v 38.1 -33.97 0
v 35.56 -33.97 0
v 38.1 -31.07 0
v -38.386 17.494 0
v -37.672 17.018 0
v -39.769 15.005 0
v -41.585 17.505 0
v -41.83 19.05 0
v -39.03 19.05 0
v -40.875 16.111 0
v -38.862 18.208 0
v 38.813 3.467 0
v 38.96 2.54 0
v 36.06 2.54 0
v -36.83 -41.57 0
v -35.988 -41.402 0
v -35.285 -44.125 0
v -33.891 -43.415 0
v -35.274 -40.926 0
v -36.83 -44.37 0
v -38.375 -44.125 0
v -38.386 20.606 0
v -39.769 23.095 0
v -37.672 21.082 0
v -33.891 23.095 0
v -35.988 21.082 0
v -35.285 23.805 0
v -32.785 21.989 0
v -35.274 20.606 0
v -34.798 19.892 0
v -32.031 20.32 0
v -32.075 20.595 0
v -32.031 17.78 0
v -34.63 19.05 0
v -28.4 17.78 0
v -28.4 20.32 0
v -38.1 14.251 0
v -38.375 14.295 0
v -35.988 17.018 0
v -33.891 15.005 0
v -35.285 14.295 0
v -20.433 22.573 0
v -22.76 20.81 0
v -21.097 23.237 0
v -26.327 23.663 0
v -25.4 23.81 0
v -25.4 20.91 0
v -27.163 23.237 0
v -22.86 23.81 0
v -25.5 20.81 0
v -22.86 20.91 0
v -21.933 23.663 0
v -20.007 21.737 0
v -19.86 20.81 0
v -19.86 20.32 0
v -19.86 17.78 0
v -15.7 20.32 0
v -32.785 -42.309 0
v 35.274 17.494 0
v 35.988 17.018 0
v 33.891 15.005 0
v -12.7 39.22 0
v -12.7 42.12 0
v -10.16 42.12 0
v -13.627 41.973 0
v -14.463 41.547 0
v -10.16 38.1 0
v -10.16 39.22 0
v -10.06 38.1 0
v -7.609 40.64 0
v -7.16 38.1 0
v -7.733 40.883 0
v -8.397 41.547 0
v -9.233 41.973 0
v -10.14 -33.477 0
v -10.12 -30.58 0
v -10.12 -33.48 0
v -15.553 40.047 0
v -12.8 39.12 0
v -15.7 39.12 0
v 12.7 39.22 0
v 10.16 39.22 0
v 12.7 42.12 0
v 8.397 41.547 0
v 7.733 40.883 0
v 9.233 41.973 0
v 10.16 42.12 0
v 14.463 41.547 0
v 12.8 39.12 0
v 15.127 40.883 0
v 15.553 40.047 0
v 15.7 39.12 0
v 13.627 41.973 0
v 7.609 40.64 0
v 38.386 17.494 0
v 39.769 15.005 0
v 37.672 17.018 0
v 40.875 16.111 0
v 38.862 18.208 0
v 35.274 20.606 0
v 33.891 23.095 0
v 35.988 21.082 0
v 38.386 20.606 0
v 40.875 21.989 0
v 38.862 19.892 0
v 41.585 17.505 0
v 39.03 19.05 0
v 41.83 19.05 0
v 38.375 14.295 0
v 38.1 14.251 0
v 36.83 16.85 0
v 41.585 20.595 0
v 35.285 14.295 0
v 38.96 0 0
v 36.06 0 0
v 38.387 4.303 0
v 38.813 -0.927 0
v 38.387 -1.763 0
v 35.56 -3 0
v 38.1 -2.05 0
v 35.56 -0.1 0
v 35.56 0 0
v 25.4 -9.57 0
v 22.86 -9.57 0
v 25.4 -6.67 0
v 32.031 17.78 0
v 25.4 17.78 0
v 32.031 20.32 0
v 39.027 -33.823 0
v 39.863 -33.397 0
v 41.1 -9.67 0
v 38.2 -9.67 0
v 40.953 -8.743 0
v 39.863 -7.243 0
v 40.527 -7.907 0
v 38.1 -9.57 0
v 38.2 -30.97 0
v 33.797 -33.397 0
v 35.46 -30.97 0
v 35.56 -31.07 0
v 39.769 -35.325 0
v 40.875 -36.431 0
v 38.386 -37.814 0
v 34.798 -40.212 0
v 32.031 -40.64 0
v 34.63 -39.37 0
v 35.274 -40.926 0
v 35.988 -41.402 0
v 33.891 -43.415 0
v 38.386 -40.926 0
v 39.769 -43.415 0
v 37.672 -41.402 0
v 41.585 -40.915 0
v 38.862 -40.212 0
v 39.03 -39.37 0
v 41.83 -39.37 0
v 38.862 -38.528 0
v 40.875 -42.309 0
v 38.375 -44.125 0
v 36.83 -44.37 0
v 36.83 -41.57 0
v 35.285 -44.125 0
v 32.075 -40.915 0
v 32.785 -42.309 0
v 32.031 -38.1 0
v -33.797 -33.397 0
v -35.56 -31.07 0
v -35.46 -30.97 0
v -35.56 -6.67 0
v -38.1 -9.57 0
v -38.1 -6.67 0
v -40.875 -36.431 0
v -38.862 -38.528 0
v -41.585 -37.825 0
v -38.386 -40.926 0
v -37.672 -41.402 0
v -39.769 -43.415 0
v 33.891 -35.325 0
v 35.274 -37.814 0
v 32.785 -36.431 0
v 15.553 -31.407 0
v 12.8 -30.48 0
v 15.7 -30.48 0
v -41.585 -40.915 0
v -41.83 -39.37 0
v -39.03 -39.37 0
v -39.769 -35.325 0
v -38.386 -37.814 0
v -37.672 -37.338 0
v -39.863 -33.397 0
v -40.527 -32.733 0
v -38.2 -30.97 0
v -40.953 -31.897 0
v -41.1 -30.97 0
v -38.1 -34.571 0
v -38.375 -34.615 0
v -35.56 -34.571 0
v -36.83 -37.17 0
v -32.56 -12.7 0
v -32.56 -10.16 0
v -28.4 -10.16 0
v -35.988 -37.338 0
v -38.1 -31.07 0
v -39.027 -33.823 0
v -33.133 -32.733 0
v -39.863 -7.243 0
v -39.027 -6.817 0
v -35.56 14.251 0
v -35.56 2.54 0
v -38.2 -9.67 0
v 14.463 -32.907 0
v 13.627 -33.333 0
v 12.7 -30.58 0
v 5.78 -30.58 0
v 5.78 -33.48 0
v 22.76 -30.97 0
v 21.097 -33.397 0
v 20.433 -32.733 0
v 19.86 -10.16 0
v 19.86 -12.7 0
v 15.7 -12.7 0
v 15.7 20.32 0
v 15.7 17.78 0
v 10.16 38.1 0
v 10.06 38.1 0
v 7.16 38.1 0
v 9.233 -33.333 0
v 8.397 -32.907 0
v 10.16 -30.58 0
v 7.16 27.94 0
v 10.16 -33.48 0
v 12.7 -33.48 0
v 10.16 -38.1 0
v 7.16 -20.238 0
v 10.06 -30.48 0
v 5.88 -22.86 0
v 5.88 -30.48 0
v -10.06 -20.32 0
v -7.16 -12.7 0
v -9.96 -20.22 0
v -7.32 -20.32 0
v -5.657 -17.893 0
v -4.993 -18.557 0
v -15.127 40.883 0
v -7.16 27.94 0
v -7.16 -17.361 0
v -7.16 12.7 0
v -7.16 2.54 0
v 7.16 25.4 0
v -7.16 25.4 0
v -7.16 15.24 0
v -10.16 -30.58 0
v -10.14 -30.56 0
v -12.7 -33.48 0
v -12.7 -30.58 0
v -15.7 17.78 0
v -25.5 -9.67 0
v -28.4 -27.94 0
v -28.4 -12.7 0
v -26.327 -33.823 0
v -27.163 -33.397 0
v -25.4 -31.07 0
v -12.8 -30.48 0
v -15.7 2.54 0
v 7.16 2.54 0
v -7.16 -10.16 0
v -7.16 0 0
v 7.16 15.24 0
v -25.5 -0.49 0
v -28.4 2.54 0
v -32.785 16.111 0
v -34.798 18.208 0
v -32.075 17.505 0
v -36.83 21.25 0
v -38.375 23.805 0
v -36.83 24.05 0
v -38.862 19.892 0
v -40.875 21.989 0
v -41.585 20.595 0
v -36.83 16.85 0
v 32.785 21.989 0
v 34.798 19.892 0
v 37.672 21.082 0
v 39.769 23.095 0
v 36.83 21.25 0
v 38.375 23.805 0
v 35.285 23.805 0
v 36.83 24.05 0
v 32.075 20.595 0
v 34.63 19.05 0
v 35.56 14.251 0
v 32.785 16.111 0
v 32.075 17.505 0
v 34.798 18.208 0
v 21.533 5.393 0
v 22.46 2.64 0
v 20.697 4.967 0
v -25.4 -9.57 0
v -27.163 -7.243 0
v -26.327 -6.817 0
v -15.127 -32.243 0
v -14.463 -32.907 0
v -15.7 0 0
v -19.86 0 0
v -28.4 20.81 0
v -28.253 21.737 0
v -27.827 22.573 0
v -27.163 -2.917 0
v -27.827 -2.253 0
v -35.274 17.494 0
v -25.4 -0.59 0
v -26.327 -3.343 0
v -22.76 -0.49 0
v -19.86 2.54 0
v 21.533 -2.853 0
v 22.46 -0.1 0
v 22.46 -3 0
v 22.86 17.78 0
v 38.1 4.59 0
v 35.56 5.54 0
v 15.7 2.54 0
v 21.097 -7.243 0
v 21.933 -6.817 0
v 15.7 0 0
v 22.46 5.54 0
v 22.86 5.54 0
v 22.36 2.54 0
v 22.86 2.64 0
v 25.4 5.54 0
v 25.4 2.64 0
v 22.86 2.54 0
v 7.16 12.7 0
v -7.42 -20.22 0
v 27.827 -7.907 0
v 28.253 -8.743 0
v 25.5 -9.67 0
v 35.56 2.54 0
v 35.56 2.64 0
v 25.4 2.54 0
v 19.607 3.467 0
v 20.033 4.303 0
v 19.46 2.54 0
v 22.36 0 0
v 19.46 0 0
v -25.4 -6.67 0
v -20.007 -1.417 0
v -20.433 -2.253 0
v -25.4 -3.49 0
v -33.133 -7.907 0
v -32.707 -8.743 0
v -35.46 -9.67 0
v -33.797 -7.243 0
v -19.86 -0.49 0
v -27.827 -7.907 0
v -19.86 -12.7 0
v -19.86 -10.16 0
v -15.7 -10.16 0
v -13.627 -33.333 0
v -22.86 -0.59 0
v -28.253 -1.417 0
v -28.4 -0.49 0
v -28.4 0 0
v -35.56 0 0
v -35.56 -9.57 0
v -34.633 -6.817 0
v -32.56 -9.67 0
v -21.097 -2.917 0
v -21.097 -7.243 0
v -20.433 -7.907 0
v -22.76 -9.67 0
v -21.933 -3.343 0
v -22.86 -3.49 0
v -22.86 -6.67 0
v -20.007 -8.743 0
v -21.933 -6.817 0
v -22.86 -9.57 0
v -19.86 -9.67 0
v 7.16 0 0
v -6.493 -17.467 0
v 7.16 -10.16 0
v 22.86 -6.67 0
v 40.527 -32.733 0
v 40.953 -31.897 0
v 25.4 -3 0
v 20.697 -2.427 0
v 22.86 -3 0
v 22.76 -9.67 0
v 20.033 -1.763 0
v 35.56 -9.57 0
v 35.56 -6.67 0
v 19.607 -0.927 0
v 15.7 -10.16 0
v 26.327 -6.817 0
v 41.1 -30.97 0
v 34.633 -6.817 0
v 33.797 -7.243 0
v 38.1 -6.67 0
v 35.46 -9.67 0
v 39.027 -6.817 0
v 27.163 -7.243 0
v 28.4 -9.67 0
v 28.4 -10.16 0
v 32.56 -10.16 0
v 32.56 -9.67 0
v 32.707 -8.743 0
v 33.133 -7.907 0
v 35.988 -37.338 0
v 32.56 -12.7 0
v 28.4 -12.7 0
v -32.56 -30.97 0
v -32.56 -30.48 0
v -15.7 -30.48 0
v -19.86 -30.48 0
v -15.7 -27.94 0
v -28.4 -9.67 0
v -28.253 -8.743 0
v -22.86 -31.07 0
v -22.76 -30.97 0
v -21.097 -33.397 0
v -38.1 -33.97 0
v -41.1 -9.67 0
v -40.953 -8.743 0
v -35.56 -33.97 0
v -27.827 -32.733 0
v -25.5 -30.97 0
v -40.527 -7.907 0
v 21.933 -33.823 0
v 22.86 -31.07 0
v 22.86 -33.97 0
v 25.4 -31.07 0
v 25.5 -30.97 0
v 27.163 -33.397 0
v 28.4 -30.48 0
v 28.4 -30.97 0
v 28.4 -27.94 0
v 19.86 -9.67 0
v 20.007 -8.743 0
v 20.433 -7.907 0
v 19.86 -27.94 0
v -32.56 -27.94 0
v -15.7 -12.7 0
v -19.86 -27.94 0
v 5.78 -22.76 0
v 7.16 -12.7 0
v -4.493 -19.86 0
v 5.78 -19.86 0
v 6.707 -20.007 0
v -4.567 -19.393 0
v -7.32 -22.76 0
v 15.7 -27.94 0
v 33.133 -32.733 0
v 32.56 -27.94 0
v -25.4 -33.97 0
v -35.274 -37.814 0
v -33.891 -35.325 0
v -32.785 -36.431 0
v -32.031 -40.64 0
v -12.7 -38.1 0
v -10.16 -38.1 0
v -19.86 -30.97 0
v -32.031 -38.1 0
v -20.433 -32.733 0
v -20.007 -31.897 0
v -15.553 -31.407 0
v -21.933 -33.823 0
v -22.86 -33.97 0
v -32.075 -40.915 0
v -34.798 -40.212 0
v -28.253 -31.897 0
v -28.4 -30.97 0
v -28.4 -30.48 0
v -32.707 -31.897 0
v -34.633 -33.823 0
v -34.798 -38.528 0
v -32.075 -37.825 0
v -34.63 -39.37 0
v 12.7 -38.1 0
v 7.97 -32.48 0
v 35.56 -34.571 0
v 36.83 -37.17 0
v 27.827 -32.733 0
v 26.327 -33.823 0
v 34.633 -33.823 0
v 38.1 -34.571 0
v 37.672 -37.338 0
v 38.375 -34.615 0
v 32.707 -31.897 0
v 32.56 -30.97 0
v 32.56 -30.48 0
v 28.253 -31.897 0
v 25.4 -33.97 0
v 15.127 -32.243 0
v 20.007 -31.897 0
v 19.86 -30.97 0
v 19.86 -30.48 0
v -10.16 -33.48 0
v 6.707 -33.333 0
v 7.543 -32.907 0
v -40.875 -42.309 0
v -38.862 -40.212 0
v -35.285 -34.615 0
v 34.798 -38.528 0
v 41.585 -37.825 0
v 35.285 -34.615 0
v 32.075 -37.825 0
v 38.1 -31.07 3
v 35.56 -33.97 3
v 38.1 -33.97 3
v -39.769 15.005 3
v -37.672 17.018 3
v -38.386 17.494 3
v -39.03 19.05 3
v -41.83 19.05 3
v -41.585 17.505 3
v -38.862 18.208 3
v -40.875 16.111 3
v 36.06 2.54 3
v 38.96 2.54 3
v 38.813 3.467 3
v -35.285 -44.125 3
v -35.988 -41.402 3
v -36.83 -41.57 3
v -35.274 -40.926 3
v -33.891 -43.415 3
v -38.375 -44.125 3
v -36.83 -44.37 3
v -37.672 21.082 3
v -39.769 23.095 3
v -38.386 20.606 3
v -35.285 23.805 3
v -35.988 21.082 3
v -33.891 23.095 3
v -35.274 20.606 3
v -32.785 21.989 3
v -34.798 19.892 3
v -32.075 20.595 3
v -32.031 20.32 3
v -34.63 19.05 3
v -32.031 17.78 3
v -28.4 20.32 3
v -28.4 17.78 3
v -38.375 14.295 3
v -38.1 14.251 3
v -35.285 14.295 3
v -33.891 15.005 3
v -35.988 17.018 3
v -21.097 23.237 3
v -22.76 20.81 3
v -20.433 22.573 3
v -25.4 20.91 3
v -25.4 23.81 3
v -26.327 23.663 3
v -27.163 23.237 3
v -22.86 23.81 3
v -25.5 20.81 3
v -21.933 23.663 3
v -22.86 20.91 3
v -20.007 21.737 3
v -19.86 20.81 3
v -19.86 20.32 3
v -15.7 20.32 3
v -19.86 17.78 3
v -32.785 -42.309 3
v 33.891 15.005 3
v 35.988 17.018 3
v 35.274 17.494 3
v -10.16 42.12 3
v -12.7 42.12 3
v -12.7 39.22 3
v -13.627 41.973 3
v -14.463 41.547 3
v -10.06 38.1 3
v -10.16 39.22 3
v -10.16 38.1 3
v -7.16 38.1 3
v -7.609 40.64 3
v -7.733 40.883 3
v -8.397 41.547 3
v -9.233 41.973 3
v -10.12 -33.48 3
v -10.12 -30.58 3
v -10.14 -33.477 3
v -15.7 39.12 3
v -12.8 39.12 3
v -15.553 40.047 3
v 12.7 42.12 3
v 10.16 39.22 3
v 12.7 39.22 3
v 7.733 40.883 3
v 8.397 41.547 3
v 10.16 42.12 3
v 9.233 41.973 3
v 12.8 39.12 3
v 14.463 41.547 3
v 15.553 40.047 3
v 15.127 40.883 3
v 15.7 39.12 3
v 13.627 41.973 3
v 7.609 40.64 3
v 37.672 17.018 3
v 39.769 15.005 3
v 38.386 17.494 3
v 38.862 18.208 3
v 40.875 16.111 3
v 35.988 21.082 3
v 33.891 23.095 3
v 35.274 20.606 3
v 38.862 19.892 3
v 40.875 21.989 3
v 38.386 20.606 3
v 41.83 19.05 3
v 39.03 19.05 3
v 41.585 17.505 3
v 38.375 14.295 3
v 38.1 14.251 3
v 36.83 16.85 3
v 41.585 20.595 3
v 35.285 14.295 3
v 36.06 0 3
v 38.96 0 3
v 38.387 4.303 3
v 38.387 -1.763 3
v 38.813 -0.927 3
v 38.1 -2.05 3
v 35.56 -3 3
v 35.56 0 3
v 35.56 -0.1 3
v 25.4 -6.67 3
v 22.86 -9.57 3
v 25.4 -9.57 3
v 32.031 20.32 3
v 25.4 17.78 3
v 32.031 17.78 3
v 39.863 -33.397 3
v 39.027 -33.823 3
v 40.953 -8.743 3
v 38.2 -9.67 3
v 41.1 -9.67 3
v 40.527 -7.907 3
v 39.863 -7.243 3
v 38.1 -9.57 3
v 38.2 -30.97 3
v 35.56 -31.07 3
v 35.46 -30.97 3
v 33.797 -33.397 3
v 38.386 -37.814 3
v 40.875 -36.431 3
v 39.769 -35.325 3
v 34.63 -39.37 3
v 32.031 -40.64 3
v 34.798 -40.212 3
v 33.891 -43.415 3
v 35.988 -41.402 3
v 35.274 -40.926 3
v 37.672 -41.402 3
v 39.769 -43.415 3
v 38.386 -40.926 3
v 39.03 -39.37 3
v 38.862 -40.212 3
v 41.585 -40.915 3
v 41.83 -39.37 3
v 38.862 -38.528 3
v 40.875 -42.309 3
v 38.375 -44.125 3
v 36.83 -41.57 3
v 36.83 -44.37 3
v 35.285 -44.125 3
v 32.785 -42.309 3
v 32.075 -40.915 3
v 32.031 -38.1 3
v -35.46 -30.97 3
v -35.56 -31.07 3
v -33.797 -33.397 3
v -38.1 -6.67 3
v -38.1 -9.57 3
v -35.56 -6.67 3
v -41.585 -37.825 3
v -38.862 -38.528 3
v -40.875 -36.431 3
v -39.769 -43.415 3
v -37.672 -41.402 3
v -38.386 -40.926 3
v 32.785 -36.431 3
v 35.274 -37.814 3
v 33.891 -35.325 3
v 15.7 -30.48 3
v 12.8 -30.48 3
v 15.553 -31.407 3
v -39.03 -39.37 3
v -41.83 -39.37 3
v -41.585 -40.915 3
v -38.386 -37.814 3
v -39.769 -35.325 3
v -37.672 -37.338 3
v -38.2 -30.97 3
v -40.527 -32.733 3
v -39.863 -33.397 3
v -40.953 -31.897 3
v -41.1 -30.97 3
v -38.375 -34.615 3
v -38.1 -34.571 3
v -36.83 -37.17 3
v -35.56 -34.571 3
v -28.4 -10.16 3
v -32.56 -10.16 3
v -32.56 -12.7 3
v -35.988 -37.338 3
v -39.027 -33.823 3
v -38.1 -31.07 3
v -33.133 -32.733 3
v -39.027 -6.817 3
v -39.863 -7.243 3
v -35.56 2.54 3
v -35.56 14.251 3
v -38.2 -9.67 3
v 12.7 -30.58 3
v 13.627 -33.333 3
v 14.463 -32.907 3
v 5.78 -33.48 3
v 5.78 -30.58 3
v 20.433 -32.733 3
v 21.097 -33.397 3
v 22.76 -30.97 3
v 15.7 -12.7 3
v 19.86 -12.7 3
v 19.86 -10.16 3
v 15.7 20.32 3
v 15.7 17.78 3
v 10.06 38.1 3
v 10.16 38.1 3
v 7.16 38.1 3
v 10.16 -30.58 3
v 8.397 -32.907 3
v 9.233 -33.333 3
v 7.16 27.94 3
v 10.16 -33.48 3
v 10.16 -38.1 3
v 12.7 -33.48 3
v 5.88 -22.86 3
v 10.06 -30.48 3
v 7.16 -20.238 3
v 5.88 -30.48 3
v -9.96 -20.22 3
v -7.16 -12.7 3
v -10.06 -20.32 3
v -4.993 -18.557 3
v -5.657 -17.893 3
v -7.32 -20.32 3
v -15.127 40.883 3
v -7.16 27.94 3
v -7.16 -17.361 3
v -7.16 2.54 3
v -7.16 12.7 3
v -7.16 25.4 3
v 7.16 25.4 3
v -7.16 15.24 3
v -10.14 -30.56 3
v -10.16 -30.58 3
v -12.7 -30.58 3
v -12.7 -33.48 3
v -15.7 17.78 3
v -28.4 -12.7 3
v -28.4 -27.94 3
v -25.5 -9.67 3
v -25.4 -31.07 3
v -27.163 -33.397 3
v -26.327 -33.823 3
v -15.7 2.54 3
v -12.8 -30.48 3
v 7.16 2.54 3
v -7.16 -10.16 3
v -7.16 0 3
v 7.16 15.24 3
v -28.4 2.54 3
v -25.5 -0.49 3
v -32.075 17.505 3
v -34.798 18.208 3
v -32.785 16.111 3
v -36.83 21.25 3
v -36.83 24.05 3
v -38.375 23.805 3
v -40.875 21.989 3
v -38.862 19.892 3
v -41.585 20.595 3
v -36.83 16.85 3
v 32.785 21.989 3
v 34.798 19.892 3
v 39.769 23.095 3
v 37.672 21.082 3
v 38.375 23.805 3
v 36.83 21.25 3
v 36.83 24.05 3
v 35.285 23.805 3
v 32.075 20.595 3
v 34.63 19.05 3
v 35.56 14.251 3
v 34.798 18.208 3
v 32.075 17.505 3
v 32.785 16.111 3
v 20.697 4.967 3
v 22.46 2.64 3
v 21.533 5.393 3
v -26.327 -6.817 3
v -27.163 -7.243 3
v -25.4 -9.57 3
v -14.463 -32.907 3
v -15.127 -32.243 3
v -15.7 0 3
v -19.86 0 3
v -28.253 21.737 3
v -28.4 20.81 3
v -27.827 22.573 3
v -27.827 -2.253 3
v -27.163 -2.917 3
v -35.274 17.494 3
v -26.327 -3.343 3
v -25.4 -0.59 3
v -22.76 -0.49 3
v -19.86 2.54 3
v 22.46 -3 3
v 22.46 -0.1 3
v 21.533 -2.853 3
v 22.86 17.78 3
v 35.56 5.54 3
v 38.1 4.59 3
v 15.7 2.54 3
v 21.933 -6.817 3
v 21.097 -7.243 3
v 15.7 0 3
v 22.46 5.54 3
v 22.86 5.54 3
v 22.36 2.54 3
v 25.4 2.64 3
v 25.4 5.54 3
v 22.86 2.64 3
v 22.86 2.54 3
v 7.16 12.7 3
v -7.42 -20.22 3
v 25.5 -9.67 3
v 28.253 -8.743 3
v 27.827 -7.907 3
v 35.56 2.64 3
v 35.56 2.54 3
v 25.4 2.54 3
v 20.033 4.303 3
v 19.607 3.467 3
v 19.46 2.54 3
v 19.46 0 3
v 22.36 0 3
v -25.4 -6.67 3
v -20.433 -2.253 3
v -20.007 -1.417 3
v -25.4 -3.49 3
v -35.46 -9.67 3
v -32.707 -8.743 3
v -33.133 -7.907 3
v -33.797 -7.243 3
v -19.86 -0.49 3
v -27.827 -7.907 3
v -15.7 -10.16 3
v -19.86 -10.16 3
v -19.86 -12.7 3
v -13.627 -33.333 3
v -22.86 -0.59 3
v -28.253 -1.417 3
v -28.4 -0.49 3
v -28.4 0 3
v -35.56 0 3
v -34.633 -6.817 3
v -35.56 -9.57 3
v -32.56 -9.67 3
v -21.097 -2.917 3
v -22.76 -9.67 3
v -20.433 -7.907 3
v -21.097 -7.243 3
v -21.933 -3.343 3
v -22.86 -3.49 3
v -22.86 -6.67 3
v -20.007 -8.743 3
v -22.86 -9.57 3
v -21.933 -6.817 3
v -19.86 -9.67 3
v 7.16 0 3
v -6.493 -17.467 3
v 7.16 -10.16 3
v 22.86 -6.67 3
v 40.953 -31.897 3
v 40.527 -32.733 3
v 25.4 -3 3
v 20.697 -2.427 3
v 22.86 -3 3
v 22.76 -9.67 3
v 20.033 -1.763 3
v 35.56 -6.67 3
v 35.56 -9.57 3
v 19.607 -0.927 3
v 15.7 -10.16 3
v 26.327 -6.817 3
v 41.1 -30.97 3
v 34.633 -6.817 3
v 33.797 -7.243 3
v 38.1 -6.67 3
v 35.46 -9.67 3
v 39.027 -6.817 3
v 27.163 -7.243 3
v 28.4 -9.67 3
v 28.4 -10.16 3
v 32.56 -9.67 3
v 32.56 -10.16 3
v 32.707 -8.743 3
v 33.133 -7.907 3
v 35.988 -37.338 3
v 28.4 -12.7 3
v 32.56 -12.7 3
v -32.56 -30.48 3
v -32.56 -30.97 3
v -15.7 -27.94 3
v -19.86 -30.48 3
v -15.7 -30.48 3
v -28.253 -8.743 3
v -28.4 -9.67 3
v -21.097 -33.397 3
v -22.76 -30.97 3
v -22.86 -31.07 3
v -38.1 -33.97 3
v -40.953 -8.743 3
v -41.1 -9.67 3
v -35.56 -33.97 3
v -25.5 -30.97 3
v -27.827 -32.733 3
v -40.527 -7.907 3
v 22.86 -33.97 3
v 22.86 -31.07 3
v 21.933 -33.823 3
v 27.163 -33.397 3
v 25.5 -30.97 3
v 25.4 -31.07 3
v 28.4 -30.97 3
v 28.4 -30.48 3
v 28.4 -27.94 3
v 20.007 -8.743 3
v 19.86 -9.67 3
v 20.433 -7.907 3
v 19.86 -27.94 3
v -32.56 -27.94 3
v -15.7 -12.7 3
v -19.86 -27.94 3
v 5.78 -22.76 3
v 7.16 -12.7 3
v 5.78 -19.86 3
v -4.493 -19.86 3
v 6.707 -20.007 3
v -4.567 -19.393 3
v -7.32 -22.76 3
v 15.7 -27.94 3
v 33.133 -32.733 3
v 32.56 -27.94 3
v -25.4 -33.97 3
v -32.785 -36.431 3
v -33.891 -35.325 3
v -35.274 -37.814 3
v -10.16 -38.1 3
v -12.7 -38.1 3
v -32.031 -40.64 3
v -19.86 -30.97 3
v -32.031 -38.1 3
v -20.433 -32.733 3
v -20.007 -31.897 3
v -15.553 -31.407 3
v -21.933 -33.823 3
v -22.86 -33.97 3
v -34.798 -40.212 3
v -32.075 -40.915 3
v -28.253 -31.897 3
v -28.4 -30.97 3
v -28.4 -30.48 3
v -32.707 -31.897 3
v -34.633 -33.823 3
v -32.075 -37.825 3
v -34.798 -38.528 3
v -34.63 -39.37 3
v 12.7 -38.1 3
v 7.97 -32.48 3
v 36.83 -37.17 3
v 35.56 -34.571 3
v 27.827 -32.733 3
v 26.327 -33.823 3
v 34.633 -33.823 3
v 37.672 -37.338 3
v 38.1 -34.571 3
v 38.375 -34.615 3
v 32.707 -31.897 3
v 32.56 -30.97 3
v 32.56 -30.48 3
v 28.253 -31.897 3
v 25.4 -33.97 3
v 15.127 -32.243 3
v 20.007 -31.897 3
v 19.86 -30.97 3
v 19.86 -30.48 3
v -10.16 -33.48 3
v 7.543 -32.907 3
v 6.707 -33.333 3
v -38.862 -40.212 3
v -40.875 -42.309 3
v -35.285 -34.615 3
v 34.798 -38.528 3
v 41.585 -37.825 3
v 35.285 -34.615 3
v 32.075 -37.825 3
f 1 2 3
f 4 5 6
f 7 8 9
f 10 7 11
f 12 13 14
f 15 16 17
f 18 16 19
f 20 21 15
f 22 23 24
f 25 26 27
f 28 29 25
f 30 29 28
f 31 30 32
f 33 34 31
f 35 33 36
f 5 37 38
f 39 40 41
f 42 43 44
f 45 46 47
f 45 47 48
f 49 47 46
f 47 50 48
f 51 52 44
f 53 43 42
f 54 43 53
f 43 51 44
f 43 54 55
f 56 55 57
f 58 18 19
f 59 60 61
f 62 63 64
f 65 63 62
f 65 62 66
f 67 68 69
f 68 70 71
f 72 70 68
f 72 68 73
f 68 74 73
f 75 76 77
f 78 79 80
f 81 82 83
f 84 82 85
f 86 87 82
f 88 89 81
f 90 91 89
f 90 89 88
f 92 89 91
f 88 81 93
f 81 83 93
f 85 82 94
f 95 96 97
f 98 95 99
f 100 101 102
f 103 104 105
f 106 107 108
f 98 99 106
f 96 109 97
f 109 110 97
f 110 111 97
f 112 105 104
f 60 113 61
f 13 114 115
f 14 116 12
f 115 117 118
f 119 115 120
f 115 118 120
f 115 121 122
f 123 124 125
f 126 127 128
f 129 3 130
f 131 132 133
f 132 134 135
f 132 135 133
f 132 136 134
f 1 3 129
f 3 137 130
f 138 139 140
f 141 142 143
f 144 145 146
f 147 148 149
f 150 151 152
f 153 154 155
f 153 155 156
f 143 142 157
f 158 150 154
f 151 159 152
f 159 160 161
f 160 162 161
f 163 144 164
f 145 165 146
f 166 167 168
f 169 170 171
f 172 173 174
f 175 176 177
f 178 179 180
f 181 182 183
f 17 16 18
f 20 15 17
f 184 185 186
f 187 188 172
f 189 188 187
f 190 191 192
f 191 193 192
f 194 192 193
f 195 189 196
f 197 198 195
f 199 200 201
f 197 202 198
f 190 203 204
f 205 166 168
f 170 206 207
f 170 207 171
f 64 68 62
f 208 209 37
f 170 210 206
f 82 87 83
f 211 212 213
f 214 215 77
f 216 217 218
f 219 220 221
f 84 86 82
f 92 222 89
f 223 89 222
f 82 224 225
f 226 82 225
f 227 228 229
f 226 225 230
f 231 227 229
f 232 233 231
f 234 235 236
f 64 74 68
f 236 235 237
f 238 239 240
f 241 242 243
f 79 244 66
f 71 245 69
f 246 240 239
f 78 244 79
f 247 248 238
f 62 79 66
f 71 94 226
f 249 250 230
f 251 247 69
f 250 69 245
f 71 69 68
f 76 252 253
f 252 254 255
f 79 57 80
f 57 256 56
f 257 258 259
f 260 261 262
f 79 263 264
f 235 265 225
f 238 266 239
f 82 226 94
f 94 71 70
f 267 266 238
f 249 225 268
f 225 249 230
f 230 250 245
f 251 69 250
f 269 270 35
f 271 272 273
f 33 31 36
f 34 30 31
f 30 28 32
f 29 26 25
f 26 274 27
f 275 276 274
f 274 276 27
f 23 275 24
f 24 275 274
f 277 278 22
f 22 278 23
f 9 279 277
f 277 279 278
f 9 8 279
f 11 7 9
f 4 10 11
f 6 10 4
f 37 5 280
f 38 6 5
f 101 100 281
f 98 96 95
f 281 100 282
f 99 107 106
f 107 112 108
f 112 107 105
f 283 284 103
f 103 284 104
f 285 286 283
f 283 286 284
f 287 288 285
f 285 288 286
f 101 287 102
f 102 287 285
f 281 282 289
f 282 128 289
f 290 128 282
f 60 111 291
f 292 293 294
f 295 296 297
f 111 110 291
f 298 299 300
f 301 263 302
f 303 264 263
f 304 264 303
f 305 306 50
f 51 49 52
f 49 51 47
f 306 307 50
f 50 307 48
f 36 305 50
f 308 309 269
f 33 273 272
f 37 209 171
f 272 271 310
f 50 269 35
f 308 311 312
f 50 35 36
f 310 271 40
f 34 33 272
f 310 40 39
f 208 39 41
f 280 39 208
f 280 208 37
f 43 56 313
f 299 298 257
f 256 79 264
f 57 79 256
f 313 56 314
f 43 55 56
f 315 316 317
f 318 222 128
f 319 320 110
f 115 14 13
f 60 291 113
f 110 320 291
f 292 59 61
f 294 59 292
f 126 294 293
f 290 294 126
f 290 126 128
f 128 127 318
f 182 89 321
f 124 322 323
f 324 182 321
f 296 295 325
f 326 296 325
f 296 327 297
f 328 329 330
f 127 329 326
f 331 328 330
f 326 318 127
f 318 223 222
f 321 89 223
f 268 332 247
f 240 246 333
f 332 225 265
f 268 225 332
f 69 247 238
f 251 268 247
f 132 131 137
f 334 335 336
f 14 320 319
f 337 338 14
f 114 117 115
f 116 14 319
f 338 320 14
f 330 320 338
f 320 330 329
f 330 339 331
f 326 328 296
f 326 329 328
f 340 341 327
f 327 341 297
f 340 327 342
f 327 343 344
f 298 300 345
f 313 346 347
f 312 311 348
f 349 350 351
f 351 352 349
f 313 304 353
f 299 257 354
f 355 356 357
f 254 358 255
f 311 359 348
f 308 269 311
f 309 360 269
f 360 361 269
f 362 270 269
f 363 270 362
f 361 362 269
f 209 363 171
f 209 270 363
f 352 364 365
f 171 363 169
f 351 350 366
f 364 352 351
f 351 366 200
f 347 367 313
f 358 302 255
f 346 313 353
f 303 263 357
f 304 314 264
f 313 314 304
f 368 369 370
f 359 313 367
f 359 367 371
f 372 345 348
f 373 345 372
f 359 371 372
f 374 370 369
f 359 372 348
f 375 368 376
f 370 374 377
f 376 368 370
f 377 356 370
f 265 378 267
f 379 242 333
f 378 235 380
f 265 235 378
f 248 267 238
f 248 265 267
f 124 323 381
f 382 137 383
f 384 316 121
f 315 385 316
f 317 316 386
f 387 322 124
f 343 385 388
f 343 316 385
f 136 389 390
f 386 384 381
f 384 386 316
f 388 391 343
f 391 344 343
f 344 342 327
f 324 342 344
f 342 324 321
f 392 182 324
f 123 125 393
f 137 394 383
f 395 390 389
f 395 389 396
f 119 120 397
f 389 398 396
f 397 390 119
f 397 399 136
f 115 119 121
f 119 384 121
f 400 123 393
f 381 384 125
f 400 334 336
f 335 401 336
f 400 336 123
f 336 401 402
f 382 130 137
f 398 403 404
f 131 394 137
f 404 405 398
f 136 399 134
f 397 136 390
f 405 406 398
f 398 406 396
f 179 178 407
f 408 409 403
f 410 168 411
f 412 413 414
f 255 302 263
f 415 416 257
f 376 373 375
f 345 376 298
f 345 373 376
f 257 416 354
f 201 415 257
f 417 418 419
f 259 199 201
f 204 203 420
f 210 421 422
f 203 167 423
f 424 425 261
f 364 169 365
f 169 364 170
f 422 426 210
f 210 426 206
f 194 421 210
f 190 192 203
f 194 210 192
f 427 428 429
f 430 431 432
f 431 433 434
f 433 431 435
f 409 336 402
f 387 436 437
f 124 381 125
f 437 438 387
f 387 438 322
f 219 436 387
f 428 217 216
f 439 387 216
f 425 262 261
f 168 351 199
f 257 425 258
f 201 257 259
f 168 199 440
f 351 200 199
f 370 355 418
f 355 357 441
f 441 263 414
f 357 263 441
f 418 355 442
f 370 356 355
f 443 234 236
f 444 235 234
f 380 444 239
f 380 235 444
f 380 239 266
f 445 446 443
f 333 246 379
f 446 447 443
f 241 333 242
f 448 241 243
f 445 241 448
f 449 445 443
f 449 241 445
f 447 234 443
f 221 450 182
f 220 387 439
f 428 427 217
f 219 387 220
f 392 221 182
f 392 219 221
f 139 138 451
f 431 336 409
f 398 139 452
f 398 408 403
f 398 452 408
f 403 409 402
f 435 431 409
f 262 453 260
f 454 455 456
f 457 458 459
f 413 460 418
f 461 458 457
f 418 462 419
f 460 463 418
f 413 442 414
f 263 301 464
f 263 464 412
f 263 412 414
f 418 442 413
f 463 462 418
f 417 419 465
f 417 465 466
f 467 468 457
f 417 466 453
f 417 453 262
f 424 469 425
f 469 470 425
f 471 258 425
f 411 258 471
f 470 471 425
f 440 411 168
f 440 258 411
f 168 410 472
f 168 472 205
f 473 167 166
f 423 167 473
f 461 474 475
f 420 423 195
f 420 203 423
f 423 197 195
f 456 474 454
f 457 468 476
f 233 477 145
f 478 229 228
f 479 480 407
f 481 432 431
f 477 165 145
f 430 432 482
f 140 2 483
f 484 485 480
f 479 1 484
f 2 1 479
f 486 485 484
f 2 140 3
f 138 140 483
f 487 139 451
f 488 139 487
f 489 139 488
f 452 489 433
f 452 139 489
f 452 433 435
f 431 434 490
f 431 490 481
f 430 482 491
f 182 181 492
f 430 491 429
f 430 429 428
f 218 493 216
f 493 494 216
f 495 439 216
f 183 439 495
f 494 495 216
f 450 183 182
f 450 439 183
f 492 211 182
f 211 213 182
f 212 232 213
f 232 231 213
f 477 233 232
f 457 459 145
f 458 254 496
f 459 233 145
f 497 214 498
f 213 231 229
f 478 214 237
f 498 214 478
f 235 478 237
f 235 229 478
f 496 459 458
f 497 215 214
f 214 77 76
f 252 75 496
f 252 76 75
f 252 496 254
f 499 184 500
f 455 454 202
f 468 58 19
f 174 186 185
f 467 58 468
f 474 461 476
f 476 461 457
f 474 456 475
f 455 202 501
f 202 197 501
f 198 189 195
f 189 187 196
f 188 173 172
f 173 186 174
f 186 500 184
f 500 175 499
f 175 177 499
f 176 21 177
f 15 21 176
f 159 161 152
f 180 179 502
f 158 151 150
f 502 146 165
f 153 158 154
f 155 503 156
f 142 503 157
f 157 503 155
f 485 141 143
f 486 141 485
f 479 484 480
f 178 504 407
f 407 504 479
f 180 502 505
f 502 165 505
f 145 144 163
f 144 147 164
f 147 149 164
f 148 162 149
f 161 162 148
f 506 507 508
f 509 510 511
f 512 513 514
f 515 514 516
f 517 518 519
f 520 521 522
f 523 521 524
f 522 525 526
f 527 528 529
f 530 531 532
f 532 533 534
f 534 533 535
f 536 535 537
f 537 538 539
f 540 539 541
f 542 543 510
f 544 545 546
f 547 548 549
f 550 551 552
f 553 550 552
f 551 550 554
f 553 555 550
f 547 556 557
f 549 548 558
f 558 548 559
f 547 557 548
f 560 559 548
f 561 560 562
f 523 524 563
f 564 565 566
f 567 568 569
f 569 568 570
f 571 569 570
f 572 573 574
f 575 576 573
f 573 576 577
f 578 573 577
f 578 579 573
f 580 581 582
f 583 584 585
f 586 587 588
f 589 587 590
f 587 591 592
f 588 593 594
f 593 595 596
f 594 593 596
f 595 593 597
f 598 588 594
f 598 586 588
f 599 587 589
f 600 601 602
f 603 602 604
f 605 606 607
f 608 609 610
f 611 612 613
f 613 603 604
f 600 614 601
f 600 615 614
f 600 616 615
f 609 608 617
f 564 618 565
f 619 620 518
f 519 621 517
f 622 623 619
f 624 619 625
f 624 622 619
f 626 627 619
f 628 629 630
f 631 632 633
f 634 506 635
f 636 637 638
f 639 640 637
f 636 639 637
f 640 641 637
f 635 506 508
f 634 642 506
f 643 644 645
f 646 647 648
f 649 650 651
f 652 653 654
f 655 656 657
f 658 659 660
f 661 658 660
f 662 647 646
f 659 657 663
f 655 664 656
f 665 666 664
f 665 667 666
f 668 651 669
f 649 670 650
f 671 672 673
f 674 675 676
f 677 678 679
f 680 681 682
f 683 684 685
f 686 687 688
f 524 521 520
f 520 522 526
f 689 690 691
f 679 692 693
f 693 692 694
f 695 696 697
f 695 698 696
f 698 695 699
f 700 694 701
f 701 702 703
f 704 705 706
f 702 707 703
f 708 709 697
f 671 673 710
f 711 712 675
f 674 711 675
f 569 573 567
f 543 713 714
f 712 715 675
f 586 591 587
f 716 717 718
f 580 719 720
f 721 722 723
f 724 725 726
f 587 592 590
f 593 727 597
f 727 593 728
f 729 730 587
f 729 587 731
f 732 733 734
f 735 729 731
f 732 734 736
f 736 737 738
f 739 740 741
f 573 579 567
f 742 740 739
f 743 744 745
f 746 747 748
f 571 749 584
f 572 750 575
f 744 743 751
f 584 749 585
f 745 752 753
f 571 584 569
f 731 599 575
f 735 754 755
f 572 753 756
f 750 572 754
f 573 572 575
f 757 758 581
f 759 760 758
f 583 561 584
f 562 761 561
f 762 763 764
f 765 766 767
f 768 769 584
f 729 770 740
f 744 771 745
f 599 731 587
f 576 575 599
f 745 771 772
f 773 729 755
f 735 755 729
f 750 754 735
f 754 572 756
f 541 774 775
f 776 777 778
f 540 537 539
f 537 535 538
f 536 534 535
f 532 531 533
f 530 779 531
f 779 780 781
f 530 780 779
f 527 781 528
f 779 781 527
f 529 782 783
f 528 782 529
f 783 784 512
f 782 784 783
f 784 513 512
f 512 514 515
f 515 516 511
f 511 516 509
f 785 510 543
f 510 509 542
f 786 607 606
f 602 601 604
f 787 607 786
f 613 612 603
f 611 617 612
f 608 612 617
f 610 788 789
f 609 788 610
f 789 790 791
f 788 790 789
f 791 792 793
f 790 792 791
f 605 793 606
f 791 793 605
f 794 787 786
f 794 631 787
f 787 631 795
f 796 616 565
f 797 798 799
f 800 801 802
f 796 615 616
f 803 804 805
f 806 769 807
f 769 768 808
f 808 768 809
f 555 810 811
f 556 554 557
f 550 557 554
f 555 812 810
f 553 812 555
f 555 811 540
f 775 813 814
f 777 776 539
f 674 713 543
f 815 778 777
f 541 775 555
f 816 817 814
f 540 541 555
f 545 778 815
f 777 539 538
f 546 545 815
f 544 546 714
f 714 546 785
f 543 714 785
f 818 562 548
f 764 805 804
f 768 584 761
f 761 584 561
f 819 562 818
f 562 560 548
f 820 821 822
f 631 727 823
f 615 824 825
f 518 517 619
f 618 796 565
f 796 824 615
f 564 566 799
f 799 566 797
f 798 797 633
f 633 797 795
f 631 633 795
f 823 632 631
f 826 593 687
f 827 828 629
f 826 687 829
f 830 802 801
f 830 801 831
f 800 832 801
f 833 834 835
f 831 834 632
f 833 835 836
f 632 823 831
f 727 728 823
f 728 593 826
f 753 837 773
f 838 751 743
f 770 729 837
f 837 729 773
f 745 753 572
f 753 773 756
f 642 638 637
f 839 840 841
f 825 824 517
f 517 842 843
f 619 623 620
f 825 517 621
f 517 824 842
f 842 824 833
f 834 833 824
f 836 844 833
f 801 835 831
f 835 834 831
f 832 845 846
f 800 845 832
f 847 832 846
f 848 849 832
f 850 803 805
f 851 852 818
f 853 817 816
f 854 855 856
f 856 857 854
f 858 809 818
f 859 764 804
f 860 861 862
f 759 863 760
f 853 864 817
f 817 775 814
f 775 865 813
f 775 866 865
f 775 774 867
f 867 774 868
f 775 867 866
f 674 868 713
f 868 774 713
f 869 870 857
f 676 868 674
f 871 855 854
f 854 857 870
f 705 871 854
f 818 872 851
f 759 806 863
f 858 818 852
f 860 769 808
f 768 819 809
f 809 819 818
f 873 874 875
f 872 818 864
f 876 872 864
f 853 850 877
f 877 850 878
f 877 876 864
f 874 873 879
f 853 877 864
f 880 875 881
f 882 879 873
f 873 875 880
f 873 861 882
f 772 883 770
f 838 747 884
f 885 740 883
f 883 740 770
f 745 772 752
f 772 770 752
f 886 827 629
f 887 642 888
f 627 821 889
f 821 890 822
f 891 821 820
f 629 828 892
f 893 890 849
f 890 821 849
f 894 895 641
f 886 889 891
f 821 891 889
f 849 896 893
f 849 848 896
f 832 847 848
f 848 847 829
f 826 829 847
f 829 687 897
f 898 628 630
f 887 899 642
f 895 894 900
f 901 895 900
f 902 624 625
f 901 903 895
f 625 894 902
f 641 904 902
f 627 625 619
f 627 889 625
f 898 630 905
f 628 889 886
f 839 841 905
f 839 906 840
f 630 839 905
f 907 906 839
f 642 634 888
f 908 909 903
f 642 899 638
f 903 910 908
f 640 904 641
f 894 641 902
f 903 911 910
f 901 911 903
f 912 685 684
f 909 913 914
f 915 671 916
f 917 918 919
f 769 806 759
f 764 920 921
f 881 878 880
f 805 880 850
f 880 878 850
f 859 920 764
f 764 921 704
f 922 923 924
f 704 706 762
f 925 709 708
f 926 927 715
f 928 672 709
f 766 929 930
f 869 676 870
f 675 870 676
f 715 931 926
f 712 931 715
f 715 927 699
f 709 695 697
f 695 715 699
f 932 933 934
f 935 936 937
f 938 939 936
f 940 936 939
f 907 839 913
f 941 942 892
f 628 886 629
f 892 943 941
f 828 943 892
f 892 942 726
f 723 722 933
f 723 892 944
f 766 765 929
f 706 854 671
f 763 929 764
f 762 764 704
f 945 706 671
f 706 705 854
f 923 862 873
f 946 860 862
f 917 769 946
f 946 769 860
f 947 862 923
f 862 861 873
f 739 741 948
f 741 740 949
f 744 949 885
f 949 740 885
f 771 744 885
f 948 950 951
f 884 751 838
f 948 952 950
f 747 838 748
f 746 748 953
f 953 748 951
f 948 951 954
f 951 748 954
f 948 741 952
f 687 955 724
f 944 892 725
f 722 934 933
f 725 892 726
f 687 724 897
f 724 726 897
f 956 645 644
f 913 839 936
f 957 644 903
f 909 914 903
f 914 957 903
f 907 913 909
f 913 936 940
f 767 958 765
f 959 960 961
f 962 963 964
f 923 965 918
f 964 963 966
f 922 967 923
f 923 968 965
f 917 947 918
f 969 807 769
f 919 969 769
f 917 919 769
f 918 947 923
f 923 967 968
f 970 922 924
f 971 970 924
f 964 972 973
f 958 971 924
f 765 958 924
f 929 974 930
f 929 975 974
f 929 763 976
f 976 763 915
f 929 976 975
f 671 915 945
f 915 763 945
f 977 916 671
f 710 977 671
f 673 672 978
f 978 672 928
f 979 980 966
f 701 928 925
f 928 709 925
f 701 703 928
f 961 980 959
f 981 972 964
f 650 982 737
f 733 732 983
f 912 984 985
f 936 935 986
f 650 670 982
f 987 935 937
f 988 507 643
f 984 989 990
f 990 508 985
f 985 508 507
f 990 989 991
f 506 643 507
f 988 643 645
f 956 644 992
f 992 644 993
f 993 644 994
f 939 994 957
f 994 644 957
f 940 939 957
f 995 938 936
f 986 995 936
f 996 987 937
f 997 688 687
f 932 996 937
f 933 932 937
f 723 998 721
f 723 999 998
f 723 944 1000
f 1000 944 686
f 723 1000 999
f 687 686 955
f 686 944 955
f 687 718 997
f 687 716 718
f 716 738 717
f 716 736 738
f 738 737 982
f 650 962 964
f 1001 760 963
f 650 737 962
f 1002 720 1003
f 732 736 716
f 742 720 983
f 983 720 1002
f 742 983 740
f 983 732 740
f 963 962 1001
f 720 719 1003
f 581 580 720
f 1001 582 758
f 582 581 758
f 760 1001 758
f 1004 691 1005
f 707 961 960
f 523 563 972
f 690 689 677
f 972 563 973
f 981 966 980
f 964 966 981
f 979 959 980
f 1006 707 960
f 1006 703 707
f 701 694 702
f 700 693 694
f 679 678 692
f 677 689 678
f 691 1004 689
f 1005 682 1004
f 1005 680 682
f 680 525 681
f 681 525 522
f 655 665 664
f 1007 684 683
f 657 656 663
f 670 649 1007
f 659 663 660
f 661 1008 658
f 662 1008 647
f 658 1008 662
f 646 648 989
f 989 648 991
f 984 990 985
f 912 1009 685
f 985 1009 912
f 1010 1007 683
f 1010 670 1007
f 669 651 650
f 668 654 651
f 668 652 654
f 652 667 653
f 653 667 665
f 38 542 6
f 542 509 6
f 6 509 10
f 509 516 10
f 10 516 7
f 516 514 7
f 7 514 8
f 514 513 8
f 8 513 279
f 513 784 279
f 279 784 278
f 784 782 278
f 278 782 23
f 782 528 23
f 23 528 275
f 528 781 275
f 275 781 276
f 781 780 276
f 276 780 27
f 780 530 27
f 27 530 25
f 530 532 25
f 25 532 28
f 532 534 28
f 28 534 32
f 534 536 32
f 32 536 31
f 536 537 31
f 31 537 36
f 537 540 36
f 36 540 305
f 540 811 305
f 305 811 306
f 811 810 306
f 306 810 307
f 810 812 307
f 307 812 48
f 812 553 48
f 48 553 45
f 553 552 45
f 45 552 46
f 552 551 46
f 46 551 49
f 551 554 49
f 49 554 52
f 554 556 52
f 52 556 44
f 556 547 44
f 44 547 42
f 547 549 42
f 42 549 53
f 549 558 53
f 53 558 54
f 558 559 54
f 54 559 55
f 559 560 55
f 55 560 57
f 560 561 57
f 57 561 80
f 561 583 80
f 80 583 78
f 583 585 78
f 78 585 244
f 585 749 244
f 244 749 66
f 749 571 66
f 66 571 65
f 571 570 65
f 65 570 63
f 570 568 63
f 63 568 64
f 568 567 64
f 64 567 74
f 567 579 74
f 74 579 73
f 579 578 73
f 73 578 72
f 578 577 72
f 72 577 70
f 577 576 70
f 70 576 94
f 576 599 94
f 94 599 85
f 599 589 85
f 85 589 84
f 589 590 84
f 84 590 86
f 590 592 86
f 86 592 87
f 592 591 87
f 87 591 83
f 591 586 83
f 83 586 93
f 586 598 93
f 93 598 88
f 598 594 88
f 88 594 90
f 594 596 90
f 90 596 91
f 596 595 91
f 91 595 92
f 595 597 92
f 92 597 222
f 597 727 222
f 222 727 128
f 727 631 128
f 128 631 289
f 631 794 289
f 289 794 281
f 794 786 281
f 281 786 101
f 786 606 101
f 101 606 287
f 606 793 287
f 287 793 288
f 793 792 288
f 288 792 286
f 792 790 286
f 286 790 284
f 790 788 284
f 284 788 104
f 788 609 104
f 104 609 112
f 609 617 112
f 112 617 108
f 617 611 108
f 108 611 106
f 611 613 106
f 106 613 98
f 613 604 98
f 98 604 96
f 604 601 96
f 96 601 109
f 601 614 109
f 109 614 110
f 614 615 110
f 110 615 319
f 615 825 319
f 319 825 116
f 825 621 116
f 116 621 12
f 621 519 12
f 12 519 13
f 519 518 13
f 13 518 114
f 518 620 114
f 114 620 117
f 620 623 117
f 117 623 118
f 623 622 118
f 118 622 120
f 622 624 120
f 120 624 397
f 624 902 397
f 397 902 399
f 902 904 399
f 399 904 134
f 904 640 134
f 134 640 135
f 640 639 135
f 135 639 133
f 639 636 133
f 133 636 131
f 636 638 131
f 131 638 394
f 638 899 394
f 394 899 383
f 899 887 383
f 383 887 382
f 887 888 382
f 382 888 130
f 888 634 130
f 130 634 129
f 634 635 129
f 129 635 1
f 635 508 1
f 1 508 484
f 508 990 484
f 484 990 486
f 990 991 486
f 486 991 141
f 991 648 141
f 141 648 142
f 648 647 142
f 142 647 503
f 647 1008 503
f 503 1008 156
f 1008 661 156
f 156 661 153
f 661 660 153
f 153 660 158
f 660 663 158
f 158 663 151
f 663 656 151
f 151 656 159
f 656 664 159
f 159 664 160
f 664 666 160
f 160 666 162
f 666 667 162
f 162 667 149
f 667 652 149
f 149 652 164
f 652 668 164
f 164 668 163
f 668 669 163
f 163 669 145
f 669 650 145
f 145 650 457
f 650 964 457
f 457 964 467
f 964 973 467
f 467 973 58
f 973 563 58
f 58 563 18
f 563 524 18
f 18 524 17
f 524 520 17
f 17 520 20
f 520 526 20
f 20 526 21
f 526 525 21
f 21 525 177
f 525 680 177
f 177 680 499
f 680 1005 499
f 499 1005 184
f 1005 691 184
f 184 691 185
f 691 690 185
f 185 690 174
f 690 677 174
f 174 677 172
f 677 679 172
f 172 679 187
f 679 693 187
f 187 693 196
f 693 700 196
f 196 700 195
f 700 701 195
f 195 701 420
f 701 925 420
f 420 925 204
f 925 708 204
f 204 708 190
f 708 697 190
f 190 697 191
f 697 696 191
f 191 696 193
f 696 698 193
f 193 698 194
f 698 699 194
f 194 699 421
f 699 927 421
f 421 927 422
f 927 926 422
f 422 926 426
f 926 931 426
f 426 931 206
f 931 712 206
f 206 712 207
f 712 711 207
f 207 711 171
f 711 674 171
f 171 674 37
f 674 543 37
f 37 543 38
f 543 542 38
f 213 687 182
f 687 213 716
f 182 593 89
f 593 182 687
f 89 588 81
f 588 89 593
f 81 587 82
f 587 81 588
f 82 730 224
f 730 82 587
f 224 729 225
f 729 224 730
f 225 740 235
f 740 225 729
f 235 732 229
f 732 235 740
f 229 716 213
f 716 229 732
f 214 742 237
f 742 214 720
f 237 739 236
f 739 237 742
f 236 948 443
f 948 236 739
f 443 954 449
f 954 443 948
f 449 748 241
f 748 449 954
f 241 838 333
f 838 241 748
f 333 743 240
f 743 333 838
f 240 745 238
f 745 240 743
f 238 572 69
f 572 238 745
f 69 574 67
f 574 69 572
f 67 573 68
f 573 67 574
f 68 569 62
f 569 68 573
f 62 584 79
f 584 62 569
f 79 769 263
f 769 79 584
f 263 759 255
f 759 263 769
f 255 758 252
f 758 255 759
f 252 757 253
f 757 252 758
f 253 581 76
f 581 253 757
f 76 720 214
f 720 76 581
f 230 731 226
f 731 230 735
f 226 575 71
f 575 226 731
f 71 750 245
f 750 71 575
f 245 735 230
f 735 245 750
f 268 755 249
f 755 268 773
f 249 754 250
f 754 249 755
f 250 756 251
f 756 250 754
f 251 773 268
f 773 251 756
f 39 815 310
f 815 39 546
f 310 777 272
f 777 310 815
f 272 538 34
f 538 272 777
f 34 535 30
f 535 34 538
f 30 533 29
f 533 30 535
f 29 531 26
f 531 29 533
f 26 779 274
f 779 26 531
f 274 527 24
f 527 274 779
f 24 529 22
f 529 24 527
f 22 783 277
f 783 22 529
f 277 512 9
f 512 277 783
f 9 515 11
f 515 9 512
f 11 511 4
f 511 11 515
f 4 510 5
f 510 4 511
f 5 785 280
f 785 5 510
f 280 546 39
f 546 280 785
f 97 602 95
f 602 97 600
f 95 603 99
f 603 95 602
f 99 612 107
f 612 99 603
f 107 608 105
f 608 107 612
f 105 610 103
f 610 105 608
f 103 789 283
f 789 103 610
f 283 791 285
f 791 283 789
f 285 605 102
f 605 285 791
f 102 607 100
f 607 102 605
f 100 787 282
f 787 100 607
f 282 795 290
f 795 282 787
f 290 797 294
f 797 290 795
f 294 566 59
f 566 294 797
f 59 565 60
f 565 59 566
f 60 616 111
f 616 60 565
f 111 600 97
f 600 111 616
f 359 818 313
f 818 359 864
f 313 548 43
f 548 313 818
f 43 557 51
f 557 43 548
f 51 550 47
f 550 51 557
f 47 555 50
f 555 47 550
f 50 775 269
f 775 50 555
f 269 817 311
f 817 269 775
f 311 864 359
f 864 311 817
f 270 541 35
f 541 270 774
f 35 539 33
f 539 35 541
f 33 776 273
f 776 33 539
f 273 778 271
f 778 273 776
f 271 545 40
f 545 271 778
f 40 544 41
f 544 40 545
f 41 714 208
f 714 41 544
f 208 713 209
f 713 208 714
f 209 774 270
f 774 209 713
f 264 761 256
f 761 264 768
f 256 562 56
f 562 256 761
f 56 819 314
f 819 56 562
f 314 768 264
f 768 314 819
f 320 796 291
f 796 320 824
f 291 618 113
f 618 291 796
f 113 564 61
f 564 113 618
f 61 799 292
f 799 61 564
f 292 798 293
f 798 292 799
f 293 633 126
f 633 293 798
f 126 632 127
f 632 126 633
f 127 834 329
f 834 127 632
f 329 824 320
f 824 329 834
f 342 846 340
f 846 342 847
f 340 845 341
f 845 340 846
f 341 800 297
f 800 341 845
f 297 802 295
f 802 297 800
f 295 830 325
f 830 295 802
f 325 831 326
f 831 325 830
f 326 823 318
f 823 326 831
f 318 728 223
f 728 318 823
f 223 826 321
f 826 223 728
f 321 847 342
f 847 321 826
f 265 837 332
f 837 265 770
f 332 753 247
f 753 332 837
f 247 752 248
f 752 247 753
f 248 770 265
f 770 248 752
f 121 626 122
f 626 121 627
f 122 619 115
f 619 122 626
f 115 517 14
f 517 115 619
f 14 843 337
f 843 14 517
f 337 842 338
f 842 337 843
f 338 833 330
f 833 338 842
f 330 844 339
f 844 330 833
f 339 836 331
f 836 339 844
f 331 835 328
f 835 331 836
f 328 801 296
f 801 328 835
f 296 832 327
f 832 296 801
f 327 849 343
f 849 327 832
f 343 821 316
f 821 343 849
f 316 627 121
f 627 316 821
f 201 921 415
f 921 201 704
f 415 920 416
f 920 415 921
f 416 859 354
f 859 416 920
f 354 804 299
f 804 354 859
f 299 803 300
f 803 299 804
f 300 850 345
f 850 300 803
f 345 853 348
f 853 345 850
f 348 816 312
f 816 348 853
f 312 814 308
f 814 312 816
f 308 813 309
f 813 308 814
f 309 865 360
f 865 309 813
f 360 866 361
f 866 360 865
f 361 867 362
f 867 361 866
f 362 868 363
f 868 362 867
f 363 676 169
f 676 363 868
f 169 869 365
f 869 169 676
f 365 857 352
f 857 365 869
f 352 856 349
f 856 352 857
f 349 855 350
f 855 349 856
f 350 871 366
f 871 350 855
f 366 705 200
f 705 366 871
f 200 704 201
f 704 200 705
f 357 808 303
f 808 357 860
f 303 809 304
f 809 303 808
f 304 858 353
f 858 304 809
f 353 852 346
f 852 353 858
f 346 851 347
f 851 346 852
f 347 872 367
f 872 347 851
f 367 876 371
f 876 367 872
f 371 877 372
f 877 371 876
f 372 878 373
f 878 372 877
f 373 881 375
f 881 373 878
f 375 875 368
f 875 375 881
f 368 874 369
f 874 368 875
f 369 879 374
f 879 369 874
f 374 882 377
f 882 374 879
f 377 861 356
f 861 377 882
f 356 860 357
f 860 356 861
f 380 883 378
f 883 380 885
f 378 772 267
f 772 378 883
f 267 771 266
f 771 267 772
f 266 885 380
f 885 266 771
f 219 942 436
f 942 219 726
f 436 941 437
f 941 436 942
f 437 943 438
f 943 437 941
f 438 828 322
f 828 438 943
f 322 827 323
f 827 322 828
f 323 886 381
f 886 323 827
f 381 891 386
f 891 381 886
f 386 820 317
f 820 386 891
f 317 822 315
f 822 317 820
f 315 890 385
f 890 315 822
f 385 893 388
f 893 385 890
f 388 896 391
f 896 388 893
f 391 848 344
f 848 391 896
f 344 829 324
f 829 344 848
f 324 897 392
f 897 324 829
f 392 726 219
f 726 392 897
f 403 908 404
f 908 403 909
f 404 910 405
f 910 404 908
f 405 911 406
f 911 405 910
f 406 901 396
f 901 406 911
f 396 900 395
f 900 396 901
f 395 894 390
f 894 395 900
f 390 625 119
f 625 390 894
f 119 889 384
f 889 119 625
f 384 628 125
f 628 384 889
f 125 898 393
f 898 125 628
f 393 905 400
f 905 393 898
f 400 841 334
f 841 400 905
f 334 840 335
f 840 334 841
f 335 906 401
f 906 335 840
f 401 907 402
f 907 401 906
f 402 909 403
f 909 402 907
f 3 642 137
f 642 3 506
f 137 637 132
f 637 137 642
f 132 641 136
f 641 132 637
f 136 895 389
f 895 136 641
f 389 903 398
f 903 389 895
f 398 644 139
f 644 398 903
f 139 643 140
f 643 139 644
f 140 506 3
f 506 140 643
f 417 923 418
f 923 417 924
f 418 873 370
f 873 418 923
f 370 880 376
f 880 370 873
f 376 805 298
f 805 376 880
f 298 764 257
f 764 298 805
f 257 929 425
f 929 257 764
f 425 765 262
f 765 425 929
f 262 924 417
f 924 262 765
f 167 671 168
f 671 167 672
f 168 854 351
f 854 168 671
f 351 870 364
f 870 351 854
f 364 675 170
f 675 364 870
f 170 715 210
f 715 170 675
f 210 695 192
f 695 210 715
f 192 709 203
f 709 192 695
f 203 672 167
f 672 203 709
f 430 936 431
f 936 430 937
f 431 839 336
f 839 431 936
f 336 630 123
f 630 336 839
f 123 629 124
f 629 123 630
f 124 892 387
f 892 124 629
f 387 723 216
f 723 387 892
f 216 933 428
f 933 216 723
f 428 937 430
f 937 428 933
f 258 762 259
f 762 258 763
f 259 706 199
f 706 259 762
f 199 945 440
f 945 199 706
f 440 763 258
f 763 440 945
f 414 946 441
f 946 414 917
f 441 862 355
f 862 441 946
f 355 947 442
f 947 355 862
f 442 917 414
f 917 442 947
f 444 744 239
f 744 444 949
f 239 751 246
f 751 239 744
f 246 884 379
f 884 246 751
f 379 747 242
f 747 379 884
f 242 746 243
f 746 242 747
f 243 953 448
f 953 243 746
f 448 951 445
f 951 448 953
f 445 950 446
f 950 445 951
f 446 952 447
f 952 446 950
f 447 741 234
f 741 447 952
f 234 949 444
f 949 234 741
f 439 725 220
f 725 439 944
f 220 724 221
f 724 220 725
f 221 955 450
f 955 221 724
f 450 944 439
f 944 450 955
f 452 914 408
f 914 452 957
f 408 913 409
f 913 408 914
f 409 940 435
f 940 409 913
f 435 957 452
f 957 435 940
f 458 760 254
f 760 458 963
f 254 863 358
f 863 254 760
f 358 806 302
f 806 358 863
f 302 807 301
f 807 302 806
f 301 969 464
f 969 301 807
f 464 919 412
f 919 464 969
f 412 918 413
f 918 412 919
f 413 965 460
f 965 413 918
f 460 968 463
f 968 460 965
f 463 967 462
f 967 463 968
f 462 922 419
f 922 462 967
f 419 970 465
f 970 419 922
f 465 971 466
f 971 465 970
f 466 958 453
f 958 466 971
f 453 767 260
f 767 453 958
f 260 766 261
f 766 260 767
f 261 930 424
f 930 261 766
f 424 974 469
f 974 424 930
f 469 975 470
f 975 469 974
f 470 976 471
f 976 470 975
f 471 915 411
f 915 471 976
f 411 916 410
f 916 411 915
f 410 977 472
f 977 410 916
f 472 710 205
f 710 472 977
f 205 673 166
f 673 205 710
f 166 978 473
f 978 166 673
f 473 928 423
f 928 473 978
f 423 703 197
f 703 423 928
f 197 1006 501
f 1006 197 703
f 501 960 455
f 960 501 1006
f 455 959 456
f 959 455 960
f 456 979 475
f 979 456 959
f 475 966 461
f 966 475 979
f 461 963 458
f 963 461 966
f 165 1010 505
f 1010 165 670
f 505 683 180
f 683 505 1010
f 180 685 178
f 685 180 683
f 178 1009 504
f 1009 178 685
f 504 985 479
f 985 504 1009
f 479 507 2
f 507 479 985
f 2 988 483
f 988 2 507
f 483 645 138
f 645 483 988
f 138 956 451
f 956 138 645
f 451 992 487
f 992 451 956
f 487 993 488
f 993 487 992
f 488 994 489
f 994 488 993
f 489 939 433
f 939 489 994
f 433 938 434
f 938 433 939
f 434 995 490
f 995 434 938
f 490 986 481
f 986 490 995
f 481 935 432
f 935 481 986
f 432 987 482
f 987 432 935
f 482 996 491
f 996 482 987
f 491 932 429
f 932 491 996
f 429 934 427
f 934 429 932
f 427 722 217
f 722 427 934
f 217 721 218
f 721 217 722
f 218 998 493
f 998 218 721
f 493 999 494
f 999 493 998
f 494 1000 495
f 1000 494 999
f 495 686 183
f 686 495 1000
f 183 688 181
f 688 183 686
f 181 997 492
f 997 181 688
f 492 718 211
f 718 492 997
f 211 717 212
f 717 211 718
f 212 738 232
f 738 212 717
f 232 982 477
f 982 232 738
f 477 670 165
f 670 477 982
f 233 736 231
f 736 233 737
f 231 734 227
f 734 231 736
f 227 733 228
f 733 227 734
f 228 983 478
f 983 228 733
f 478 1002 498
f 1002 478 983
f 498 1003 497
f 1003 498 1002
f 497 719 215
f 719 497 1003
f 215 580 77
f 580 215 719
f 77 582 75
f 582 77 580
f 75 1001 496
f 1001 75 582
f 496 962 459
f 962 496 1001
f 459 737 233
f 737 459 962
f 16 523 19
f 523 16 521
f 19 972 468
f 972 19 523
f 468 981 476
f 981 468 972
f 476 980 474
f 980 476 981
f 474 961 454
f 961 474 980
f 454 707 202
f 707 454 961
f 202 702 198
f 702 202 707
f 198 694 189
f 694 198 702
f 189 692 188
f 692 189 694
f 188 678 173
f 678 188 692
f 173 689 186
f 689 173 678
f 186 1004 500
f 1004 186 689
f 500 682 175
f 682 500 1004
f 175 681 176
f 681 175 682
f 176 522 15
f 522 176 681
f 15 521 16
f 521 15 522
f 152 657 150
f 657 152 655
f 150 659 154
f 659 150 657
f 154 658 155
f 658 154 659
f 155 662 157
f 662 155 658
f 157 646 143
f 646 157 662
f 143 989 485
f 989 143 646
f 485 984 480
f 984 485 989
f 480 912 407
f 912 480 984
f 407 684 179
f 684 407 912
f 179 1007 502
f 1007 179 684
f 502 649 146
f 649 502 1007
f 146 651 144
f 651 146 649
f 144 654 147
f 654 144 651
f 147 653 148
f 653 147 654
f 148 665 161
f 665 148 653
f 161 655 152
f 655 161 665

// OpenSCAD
// electronics_holder.scad
//
// A printable "proto-board" concept for holding and wiring carrier boards.
// The board is a frame designed to hold female header strips at 0.1" DIP package spacing
// to provide a socket frame for electronics carried boards. The female headers can be glued
// to the printed frame and then wired similarly to how one might wire sockets soldered into
// a proto board. 
//
// By Gregg Christopher, 2015
// This file is public domain

slop = 0.01;

ps = 0.1 * 25.4;

module pin_strip(min_x, min_y, max_x, max_y) {
  translate([(min_x) * ps, (min_y) * ps])
  square([(max_x - min_x + 1) * ps, (max_y - min_y + 1) * ps]);
  
}

module lpcxpresso_holder() {
  translate([-5 * ps, -12.5 * ps])
  square([ps, 69.6]);
  translate([4 * ps, -12.5 * ps])
  square([ps, 69.6]);
  
  translate([-2 * ps - 0.7, -12.5 * ps, 0])
  square([15.9, 3 * ps]);

  translate([3 * ps - 0.2, -9.5 * ps, 0])
  square([ps, ps]);
}


module motor_driver_holder() {
  translate([-2.5 * ps, 0])
  square([ps, 21.3], center = true);
  translate([2.5 * ps, 0])
  square([ps, 21.3], center = true);
}

module bluefruit_holder() {
  square([ps, 21.3], center = true);
}

module vreg_holder() {
  square([13.5, ps], center = true);
}

module all_holders() {
  translate([-11.5 * ps, 0.5 * ps])
  vreg_holder();
  
  translate([9.5 * ps, 4 * ps])
  bluefruit_holder();
  
  translate([12 * ps, -8 * ps])
  motor_driver_holder();
  
  translate([-12 * ps, -8 * ps])
  motor_driver_holder();
  
  translate([0, 0.5 * ps])
  lpcxpresso_holder();
}

module screw_hole_6_32() {
  translate([0.5 * ps, 0.5 * ps])
  difference() {
    circle(r = 10/2, $fn = 20);
    circle(r = 4.4/2, $fn = 16);
  }
}

mirror([1, 0, 0])
linear_extrude(height = 3) {
  difference() {
    offset(r = 3, $fn = 20)
    all_holders();
    
    offset(r = 0.1) // Add slop to compensate for hole shrinkage?
    all_holders();
  }  
  
  // Cross-braces for lpc holder
  pin_strip(-3, -5, 2, -5);
  pin_strip(-3, 0, 2, 0);
  pin_strip(-3, 5, 2, 5);
  pin_strip(-3, 10, 2, 10);
  pin_strip(-4, 15, 3, 15);
  
  // VReg braces
  pin_strip(-15, -3, -15, -1);
  pin_strip(-10, -3, -10, -2);
  pin_strip(-8, 0, -7, 0);
  
  // Bluefruit braces
  pin_strip(6, 7, 7, 7);
  pin_strip(6, 0, 7, 0);
  pin_strip(9, -3, 9, -2);
  
  // Left motor holder braces
  pin_strip(-13, -12, -12, -12);
  pin_strip(-13, -5, -12, -5);
  
  pin_strip(-8, -12, -7, -12);
  pin_strip(-8, -5, -7, -5);
  
  // Right motor holder braces
  pin_strip(11, -12, 12, -12);
  pin_strip(11, -5, 12, -5);
  
  pin_strip(6, -12, 7, -12);
  pin_strip(6, -5, 7, -5);


  pin_strip(-13, 7, -7, 7);
  pin_strip(11, 7, 12, 7);
  pin_strip(11, 0, 14, 0);
  pin_strip(-15, 1, -15, 5);
  pin_strip(-10, 1, -10, 7);
  pin_strip(14, -3, 14, 5);
  translate([14*ps, 7*ps]) screw_hole_6_32();
  translate([-15*ps, 7*ps]) screw_hole_6_32();

  pin_strip(-13, -16, 12, -16);
  pin_strip(-15, -14, -15, -14);
  pin_strip(14, -14, 14, -14);
  pin_strip(-5, -16, -5, -14);
  pin_strip(4, -16, 4, -14);

  translate([14*ps, -16*ps]) screw_hole_6_32();
  translate([-15*ps, -16*ps]) screw_hole_6_32();
}
